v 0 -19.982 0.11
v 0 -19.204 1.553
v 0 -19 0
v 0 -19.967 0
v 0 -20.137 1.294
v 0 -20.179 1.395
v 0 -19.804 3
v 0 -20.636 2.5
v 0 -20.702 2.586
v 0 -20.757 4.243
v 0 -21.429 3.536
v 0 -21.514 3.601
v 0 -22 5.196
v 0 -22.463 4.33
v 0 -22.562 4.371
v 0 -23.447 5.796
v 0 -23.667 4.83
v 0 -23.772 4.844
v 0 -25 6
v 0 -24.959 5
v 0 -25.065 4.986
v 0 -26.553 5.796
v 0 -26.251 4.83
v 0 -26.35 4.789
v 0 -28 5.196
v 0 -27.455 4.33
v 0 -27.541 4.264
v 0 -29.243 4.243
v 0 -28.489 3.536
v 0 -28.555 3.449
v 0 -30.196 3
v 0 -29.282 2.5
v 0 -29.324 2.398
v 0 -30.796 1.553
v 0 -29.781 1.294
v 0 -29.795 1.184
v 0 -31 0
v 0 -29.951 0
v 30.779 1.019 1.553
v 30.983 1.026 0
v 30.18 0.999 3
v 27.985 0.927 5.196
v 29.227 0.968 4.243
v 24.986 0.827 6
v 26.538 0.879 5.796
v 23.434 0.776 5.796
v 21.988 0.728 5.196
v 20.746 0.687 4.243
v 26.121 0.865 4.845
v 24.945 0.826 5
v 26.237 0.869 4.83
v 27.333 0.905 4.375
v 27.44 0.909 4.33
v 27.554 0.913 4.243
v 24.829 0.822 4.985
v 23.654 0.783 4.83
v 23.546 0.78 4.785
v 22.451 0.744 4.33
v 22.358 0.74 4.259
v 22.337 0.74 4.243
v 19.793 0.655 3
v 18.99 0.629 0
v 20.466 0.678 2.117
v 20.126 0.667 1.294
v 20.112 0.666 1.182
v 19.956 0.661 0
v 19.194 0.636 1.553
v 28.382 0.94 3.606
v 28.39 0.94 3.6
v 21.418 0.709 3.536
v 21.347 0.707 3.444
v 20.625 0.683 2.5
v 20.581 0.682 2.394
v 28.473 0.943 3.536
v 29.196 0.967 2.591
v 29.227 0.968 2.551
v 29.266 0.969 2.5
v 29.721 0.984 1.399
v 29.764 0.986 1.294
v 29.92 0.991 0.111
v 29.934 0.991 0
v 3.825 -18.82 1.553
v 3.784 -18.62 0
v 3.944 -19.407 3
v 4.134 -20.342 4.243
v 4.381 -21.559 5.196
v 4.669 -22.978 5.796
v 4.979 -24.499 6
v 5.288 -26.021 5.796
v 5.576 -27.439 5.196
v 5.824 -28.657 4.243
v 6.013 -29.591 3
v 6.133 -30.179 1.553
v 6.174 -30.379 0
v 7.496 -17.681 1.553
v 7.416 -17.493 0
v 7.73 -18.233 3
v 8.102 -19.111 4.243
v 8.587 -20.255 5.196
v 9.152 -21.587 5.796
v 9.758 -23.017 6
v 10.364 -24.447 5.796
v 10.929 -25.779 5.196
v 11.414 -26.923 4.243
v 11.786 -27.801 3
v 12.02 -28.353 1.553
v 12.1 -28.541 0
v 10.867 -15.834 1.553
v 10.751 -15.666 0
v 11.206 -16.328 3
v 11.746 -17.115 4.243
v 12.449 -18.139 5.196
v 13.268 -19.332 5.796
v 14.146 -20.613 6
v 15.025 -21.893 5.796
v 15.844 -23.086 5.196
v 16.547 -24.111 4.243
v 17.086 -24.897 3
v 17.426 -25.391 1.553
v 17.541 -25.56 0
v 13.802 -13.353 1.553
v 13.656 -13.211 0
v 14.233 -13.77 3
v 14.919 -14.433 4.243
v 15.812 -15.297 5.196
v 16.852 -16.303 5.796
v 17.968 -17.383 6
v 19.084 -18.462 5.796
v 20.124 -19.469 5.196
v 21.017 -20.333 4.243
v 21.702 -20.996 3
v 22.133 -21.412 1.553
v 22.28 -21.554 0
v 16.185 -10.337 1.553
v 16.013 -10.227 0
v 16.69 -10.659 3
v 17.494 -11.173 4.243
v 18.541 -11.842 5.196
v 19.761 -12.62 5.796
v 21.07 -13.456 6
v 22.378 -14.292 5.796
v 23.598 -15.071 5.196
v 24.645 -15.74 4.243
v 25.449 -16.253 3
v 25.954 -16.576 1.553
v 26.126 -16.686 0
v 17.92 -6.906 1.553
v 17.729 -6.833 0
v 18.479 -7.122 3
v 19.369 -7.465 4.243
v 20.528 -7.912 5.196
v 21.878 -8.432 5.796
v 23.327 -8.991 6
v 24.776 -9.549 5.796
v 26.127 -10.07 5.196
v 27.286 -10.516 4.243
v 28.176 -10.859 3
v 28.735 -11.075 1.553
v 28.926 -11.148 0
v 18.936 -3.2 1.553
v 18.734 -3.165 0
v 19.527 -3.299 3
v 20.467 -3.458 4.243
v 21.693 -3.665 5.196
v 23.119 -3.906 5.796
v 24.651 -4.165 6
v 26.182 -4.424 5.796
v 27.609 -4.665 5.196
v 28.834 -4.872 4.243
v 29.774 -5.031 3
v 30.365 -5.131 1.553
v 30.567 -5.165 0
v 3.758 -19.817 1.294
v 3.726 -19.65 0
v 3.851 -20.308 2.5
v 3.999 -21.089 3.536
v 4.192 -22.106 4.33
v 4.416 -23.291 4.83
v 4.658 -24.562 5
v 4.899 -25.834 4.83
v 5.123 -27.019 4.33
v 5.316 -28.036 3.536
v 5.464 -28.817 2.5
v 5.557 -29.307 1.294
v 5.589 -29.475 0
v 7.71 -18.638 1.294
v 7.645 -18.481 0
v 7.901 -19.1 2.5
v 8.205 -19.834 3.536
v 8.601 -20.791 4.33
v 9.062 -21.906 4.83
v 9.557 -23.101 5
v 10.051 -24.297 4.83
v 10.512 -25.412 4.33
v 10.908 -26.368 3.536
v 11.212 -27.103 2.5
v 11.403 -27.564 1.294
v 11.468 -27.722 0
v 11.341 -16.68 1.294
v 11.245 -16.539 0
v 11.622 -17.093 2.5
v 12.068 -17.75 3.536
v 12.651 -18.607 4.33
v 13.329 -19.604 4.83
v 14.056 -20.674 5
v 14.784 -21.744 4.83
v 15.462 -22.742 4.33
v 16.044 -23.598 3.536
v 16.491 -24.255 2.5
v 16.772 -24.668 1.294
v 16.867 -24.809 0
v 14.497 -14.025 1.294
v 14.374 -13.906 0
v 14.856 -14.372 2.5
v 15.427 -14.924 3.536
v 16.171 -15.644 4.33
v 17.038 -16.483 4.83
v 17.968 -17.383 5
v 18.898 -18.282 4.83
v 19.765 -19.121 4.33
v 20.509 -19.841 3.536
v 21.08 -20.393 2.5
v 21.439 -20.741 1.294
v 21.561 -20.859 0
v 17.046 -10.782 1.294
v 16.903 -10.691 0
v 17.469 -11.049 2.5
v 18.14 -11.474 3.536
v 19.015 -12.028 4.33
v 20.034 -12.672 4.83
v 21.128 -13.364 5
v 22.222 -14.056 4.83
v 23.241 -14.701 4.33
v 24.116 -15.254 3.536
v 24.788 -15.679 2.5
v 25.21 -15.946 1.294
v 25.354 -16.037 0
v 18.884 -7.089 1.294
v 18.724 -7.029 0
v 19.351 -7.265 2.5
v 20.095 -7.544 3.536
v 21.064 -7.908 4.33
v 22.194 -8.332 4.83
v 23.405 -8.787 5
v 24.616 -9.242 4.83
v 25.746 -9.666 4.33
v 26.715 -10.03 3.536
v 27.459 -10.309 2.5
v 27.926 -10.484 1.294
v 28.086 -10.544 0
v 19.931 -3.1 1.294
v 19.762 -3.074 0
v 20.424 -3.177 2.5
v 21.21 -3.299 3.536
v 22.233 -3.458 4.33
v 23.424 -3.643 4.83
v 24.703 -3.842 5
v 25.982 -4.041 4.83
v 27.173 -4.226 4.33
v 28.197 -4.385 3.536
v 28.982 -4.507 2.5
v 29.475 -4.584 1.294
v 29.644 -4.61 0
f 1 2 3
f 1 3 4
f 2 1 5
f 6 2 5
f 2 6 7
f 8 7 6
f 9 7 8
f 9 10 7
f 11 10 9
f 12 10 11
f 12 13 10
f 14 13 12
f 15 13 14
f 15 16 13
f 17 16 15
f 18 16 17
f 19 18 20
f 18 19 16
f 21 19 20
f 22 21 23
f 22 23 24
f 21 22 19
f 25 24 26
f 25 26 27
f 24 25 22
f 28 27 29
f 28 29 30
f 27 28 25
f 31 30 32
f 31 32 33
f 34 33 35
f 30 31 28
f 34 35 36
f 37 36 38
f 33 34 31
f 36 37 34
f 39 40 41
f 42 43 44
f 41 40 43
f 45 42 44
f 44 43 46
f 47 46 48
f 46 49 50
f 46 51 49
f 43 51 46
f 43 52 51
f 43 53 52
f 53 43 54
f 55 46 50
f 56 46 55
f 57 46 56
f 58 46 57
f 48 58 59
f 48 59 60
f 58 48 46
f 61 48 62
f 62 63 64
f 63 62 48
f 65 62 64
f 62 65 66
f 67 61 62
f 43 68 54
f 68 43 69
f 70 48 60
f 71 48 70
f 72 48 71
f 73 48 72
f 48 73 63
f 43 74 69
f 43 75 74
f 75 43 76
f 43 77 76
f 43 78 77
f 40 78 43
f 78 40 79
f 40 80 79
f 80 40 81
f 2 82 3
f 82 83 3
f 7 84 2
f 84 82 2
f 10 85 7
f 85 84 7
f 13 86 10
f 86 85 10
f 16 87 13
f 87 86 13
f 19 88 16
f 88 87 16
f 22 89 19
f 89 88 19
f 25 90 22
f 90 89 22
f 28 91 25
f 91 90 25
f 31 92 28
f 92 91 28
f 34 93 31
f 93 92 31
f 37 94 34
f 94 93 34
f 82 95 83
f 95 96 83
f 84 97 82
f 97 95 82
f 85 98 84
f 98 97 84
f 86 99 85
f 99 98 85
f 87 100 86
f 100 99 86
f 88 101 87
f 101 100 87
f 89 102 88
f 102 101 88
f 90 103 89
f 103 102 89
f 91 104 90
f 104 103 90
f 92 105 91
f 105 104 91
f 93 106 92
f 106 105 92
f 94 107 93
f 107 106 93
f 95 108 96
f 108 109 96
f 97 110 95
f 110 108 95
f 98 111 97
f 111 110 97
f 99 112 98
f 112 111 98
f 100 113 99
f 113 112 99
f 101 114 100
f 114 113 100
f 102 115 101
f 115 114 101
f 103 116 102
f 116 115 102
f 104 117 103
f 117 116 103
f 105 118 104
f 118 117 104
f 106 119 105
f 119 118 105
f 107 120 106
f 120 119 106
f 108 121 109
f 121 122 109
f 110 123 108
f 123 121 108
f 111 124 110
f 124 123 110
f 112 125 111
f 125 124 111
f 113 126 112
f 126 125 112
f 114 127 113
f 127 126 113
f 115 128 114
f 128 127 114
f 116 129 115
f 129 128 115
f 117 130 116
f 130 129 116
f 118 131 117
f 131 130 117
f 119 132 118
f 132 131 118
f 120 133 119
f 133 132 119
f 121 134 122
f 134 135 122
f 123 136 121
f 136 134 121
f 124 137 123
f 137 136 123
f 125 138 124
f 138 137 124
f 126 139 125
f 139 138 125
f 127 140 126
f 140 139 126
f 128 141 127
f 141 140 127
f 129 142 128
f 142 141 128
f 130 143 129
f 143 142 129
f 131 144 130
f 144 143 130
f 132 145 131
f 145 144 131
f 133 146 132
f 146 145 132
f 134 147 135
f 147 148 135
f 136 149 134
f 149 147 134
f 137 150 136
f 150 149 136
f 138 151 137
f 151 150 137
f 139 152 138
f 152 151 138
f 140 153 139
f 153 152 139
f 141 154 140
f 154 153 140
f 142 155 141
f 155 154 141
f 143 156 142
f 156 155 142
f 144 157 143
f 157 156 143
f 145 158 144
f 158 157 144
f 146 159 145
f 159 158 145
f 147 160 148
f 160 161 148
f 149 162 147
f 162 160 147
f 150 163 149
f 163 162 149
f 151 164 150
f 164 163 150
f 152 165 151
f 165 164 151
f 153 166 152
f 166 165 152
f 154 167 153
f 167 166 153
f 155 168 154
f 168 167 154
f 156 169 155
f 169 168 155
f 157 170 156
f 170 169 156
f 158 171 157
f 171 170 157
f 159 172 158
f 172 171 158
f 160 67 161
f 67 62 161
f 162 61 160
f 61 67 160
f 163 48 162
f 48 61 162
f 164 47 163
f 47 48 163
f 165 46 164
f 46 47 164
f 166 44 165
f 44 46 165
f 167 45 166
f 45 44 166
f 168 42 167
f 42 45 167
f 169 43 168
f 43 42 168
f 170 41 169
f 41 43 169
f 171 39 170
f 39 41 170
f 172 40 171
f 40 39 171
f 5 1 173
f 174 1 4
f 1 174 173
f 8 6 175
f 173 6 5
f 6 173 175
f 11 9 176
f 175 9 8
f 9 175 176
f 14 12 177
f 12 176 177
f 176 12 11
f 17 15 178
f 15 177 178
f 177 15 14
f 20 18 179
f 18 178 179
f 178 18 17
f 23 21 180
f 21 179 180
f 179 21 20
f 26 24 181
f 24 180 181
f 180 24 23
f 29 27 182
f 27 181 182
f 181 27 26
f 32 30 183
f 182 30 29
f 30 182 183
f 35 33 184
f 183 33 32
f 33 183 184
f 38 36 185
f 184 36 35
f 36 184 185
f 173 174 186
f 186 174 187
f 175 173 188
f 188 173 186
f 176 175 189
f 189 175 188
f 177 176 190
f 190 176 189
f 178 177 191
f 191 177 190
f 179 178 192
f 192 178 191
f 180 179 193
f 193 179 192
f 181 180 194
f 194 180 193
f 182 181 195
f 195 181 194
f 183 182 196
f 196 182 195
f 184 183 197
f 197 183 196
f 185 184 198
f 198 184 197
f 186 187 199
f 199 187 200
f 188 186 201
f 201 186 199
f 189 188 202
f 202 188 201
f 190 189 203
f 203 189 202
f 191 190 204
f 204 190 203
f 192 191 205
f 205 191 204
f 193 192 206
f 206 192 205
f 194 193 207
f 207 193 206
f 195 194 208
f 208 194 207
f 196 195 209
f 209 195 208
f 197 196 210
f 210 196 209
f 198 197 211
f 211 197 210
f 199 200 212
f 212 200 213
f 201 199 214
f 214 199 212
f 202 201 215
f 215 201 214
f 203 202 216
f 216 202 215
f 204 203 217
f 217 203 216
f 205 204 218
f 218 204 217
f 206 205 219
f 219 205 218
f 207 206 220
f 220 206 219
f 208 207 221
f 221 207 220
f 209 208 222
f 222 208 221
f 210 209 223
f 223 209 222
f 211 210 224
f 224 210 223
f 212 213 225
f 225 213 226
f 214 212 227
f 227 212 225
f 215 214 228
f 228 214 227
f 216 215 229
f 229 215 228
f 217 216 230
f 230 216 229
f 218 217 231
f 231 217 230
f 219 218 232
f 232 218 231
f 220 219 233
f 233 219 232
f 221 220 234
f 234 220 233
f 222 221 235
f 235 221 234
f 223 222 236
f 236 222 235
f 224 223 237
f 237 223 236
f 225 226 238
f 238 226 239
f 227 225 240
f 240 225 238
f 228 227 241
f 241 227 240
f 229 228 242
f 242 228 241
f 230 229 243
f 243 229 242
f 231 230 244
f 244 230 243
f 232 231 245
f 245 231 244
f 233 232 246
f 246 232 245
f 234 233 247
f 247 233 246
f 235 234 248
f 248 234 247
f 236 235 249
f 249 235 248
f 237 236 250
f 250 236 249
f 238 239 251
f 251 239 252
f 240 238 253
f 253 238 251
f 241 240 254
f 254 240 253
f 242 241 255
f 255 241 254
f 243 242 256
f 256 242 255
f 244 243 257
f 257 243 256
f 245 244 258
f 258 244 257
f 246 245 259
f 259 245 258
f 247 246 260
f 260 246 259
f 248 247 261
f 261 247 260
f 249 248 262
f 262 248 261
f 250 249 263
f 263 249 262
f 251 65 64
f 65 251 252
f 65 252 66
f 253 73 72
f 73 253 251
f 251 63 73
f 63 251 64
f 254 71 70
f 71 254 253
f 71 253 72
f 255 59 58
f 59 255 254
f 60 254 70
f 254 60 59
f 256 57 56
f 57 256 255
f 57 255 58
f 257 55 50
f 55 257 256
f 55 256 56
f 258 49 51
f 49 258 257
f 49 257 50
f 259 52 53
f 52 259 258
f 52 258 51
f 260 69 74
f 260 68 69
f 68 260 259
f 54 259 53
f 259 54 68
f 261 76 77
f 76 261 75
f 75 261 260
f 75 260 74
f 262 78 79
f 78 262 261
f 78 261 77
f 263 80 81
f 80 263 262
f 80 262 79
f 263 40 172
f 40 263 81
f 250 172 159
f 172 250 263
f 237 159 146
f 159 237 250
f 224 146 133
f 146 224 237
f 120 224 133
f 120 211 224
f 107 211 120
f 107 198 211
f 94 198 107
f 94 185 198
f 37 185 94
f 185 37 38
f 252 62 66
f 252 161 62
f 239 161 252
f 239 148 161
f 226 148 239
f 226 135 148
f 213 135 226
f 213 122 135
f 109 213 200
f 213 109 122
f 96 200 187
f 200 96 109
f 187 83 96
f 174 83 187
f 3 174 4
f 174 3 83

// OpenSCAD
// file: ../build_environments.scad
// build_environments.scad: modules to build level sections
//

module pool(diameter=10.0, wall_height=2.0, step_width=3.0, connections=[])
{
    difference() {
        union() {
        difference() {
            cylinder(h=0.5,r1=diameter+step_width,r2=diameter+step_width,$fn=48);
            translate([0,0,-0.1])
                cylinder(h=0.7,r1=diameter,r2=diameter,$fn=48);
        }
        difference() {
            cylinder(h=wall_height,r1=diameter+step_width+1.0,r2=diameter+step_width+1.0,$fn=48);
            translate([0,0,-0.1])
                cylinder(h=wall_height+0.2,r1=diameter+step_width,r2=diameter+step_width,$fn=48);
        }
        }
    
        for (c = connections)
        {
            rotate([0,90,0]) {
                angle = atan2(c[1],c[0]);
                rotate([-angle,0,0]) {
                    cylinder(h=diameter+5.0,r1=c[2],r2=c[2],$fn=48);
                }
            }
        }
    }
}

module straight(length=10.0, width=2.0, dy1=0.0, dy2=0.0, dz=0.0)
{
    dims = [0, 0, 0, 0, 0, (dz/length)];
    matrix = [
        [ 1, dims[0], dims[1], 0 ],
        [ dims[2], 1, dims[4], 0 ],
        [ dims[5], dims[3], 1, 0 ],
        [ 0, 0, 0, 1 ]
    ];
    multmatrix(matrix)
    difference() {
        translate([dy1,0,0])
        union() {
            rotate([0,90,0]) {
                difference() {
                    cylinder(h=(length-dy1-dy2),r1=width+1.0,r2=width+1.0,$fn=24);
                    translate([0,0,-0.1])
                        cylinder(h=(length-dy1-dy2+0.2),r1=width,r2=width,$fn=24);
                }
                difference() {
                    cylinder(h=1.0,r1=width+2.0,r2=width+2.0,$fn=24);
                    translate([0,0,-0.1])
                        cylinder(h=1.2,r1=width,r2=width,$fn=24);
                }
                translate([0,0,(length-dy1-dy2)-1.0]) {
                    difference() {
                        cylinder(h=1.0,r1=width+2.0,r2=width+2.0,$fn=24);
                        translate([0,0,-0.1])
                            cylinder(h=1.2,r1=width,r2=width,$fn=24);
                    }
                }
            }
        }
        translate([0,0,-(2*width+4.0)/2])
            cube([3*length,3*length,2*width+4.0],center=true);
    }
}

module curve(p0=[0,0], center=[0,0], dir=1, angle=0.0, width=2.0)
{
    radius = sqrt((p0[0]-center[0])*(p0[0]-center[0]) + (p0[1]-center[1])*(p0[1]-center[1]));
    if (dir == 0) {
        difference() {
            rotate([0,0,-90])
            difference() {
                rotate_extrude(angle = angle, convexity = 10, $fn=32)
                    translate([radius, 0, 0])
                        circle(r = width+1.0,$fn=24);
                rotate([0,0,-1.0])
                    rotate_extrude(angle = angle+2.0, convexity = 10, $fn=32)
                        translate([radius, 0, 0])
                            circle(r = width,$fn=24);
            }
            translate([0,0,-(2*width+4.0)/2])
                cube([5*radius,5*radius,2*width+4.0],center=true);
        }
    }
    else {
        difference() {
            rotate([0,0,90])
            difference() {
                rotate_extrude(angle = -angle, convexity = 10, $fn=32)
                    translate([radius, 0, 0])
                        circle(r = width+1.0,$fn=24);
                rotate([0,0,1.0])
                    rotate_extrude(angle = -angle-2.0, convexity = 10, $fn=32)
                        translate([radius, 0, 0])
                            circle(r = width,$fn=24);
            }
            translate([0,0,-(2*width+4.0)/2])
                cube([5*radius,5*radius,2*width+4.0],center=true);
        }
    }

}

// test pool
//pool(diameter=12.0000, wall_height=3.0000, step_width=3.0000, connections=[[0.0000,-26.0000,2.0000], [23.6074,0.0000,2.0000]]);

// test straight, slope
//straight(length=26.0000, width=2.0000, dy1=11.8322, dy2=6.7082, dz=0.0000);
//straight(length=29.1549, width=12.0000, dy1=0.0000, dy2=0.0000, dz=-15.0000);

// test curve
//curve(p0=[23.6074, 0.0000], center=[23.6074, 5.0000], dir=0, angle=60.1011, width=2.0000);
//curve(p0=[33.6426, 12.4219], center=[37.9771, 9.9295], dir=1, angle=120.4627, width=2.0000);
// main file
use <../build_environments.scad>;
curve(p0=[140.8305, -109.4929], center=[141.5630, -134.4822], dir=0, angle=91.8968, width=5.0000);
